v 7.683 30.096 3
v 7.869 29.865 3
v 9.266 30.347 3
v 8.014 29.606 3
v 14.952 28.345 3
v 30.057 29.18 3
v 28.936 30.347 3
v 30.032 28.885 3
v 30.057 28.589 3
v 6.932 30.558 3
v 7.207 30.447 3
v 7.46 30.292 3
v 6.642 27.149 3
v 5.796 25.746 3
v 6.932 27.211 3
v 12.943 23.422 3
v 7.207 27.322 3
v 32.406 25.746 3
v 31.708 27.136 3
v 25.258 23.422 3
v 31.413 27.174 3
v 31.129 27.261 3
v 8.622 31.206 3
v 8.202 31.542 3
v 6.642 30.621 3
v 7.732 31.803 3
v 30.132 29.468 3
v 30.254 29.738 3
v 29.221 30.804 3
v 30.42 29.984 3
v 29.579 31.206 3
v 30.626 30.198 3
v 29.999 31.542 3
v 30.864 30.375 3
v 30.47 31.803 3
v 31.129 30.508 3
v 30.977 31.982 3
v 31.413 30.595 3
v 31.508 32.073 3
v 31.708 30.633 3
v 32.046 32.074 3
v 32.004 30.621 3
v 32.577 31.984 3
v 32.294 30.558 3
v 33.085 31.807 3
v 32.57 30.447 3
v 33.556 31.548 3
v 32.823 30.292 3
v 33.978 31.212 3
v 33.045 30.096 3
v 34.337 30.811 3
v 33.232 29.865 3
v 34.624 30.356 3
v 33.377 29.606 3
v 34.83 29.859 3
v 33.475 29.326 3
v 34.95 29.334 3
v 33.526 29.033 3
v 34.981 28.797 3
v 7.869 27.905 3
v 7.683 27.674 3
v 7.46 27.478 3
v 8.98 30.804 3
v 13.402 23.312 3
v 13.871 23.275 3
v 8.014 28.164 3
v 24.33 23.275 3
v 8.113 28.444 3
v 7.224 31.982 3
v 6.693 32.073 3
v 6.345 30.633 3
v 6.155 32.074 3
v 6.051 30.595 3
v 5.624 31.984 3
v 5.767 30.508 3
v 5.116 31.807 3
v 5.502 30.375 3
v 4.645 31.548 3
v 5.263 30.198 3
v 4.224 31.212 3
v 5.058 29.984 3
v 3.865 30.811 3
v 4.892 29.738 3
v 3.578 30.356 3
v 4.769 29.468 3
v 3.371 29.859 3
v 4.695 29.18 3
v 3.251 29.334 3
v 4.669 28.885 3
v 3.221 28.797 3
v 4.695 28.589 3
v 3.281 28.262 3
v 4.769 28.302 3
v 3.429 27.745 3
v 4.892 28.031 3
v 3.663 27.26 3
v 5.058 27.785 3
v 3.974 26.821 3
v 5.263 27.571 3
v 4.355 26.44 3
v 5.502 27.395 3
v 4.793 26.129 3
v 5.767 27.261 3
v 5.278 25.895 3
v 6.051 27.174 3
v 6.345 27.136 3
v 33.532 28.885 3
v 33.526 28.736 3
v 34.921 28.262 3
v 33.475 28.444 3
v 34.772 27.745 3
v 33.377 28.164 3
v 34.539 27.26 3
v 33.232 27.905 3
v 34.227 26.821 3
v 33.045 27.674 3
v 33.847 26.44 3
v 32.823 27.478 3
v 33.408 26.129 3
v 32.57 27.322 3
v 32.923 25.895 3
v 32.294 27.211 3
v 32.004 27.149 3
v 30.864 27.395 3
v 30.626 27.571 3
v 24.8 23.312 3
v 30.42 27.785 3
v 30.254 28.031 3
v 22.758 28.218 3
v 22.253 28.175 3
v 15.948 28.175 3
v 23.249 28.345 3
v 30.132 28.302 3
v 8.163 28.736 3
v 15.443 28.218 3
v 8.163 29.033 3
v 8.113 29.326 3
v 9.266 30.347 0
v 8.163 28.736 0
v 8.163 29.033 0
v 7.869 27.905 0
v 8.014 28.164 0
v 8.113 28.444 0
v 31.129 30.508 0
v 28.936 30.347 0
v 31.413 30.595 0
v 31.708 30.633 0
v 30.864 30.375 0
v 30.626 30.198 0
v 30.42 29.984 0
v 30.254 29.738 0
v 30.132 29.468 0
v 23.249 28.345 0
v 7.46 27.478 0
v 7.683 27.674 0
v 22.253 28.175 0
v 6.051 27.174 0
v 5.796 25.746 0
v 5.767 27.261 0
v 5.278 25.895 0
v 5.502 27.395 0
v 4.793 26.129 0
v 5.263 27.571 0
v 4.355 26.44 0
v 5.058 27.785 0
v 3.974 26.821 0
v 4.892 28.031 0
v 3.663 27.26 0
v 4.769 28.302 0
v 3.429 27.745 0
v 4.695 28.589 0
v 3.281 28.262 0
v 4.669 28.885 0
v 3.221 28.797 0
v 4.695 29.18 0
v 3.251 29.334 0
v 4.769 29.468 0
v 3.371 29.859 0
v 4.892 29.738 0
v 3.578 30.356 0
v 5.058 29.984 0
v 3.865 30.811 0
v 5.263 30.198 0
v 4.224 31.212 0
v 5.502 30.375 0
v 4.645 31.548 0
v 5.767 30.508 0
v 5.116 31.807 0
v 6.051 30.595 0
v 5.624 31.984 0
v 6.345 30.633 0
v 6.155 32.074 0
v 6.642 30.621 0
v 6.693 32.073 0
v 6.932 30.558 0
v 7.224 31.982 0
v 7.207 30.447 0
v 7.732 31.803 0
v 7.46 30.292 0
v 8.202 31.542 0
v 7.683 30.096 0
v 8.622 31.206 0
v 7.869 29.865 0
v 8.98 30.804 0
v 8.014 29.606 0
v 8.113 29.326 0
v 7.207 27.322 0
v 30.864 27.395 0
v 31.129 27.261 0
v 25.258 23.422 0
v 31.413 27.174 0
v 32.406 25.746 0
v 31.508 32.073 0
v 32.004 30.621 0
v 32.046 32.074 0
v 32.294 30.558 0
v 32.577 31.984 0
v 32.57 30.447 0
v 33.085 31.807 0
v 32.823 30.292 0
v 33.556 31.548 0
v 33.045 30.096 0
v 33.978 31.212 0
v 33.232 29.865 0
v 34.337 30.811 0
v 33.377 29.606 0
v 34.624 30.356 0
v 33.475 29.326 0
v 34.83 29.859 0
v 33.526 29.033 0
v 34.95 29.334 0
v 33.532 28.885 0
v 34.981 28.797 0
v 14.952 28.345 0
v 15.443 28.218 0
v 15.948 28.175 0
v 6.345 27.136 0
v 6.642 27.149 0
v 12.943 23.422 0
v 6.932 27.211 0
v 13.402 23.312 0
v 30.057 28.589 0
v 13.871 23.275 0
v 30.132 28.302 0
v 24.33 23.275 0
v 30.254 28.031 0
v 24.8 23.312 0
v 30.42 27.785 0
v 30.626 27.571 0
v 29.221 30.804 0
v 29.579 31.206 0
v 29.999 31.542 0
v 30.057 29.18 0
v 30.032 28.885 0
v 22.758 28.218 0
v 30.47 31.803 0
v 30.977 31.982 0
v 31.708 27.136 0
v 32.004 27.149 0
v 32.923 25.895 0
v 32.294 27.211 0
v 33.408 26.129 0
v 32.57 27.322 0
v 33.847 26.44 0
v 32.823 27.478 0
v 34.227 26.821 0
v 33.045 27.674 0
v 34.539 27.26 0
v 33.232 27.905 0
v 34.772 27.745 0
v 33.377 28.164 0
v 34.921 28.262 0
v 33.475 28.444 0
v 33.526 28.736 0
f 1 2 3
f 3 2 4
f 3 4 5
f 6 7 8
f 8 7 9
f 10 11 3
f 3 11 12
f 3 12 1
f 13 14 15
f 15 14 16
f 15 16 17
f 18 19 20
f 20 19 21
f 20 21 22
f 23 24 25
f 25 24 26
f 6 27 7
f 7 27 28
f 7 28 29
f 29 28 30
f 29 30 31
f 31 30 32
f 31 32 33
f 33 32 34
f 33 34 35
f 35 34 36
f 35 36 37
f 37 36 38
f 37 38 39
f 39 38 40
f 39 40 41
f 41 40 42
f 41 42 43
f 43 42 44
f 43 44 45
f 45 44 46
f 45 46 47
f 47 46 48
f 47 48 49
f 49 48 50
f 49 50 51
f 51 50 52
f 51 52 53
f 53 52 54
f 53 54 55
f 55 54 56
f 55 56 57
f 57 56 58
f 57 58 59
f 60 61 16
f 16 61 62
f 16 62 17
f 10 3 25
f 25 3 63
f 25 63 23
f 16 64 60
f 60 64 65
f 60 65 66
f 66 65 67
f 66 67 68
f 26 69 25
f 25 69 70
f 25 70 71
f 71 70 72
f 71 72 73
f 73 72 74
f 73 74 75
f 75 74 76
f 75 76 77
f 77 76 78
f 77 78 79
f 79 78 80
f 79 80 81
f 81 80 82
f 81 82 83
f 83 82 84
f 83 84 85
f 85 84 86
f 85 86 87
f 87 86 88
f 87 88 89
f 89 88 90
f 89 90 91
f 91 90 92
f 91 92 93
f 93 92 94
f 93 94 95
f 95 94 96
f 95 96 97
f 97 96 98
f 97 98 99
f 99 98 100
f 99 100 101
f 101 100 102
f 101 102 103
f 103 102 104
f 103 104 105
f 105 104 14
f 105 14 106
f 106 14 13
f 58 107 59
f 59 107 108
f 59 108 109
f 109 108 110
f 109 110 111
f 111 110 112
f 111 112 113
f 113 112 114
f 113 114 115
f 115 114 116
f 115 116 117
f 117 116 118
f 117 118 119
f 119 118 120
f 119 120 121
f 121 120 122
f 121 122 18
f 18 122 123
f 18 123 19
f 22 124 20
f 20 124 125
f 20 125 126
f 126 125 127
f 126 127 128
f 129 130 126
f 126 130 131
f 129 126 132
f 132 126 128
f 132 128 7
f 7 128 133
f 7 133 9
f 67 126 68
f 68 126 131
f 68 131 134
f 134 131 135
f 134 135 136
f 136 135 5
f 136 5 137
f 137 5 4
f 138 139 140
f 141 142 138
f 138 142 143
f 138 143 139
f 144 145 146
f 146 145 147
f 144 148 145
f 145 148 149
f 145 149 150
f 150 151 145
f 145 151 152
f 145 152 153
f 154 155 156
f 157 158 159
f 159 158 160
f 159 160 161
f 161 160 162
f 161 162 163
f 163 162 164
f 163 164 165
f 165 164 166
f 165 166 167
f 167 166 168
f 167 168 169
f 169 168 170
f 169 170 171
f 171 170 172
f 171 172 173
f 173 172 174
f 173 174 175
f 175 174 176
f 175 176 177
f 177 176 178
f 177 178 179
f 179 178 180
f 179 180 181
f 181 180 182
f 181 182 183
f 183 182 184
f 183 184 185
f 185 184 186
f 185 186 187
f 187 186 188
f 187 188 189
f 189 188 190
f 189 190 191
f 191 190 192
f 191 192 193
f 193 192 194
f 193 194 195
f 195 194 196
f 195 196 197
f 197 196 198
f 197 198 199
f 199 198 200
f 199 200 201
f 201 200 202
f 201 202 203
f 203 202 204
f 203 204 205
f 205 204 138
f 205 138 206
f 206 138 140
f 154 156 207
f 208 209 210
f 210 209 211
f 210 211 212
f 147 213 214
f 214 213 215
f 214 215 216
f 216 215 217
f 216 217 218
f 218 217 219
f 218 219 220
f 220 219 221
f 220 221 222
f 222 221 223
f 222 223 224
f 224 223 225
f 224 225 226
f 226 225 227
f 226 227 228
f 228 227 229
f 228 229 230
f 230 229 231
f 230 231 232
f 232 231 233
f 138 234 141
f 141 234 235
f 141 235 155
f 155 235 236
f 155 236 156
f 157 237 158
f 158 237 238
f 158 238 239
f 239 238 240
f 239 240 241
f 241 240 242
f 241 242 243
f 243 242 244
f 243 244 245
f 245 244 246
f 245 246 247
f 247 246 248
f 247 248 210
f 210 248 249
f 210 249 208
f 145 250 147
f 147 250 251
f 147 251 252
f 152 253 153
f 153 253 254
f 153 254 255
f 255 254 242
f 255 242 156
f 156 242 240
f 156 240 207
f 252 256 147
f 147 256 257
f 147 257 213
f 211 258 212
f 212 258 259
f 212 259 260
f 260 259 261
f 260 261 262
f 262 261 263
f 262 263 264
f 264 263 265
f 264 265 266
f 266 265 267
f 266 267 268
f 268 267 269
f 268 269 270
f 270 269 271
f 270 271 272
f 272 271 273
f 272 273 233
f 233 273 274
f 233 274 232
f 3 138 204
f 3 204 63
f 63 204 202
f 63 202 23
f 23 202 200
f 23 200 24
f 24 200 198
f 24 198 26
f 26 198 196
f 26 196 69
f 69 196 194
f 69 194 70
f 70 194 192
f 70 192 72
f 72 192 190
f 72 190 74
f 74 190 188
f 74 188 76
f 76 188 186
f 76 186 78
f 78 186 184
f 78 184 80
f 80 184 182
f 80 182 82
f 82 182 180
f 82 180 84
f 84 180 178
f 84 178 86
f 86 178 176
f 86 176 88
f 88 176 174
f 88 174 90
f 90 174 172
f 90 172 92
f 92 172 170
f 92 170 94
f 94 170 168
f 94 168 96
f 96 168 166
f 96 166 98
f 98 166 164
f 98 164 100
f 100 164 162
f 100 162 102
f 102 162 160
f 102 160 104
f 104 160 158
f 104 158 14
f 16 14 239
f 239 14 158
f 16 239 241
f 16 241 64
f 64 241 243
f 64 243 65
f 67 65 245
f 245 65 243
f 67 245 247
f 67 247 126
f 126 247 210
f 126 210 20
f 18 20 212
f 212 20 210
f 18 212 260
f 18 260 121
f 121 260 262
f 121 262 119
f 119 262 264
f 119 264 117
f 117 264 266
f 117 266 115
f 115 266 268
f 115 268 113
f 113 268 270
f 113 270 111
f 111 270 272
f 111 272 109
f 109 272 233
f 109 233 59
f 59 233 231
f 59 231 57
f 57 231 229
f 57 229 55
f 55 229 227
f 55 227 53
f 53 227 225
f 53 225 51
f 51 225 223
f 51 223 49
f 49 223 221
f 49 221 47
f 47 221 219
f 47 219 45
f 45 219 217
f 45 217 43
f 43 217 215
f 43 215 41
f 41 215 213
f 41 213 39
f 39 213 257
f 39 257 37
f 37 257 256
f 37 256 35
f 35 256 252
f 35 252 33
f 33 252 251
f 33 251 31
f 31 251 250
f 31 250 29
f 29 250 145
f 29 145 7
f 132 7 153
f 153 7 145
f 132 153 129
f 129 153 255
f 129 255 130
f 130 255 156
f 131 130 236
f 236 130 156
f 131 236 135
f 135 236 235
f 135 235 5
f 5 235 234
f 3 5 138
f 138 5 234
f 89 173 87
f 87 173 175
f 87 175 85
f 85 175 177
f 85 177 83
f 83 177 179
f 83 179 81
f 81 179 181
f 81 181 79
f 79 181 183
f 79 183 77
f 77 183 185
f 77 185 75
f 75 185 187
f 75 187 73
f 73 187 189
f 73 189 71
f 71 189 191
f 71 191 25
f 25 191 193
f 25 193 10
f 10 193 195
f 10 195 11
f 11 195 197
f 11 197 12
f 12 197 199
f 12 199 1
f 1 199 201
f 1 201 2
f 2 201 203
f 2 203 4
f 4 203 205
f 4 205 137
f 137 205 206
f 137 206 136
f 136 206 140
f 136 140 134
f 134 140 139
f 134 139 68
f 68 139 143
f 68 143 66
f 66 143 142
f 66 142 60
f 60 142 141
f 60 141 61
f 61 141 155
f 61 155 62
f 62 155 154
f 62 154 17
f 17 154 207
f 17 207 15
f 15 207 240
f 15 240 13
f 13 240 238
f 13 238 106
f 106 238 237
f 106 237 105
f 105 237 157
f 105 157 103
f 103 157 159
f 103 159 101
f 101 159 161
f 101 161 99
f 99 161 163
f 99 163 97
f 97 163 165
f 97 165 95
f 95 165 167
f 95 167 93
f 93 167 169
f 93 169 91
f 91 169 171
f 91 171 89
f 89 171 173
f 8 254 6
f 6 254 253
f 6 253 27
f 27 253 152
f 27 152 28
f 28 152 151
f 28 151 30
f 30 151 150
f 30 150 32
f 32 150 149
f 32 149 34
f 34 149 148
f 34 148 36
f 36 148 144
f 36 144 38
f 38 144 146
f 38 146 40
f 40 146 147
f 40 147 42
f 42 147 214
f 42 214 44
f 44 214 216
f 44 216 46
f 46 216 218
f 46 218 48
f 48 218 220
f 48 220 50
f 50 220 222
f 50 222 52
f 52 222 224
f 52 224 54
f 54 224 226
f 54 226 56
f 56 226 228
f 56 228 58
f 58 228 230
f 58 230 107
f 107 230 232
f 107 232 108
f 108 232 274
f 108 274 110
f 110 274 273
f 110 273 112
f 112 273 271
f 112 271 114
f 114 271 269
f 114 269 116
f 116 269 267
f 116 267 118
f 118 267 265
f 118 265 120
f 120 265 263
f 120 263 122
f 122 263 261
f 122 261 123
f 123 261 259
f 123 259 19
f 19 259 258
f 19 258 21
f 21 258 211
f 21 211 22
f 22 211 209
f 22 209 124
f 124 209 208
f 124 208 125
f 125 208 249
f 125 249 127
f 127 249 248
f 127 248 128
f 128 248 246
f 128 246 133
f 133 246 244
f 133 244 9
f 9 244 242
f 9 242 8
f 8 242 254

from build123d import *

# Parameters (mm, degrees)
CROQUIS1_R              = 1.75
SALIENTE_EXTRUIR1_DEPTH = 3


with BuildPart() as part:
    # Croquis1 → Saliente-Extruir1 (new body)
    with BuildSketch(Plane.XY):
        with BuildLine():
            Line((13.871153062, 23.274726508), (24.330135763, 23.274726508))
            ThreePointArc((24.330135763, 23.274726508), (24.799781514, 23.311715731), (25.257846044, 23.421771263))
            Line((25.257846044, 23.421771263), (32.405644412, 25.746057998))
            ThreePointArc((32.405644412, 25.746057998), (34.336780797, 30.811489821), (28.935644412, 30.347148308))
            Line((28.935644412, 30.347148308), (23.249258293, 28.345004197))
            ThreePointArc((23.249258293, 28.345004197), (22.758316719, 28.21760232), (22.252929212, 28.174726508))
            Line((22.252929212, 28.174726508), (15.948359613, 28.174726508))
            ThreePointArc((15.948359613, 28.174726508), (15.442972106, 28.21760232), (14.952030531, 28.345004197))
            Line((14.952030531, 28.345004197), (9.265644412, 30.347148308))
            ThreePointArc((9.265644412, 30.347148308), (3.864508027, 30.811489821), (5.795644412, 25.746057998))
            Line((5.795644412, 25.746057998), (12.94344278, 23.421771263))
            ThreePointArc((12.94344278, 23.421771263), (13.401507311, 23.311715731), (13.871153062, 23.274726508))
        make_face()
        with Locations((31.781902577, 28.88467969)):
            Circle(CROQUIS1_R, mode=Mode.SUBTRACT)
        with Locations(Location((6.419386247, 28.88467969, 0), (0, 0, 180))):
            Circle(CROQUIS1_R, mode=Mode.SUBTRACT)
    extrude(amount=SALIENTE_EXTRUIR1_DEPTH)


solid = part.part
